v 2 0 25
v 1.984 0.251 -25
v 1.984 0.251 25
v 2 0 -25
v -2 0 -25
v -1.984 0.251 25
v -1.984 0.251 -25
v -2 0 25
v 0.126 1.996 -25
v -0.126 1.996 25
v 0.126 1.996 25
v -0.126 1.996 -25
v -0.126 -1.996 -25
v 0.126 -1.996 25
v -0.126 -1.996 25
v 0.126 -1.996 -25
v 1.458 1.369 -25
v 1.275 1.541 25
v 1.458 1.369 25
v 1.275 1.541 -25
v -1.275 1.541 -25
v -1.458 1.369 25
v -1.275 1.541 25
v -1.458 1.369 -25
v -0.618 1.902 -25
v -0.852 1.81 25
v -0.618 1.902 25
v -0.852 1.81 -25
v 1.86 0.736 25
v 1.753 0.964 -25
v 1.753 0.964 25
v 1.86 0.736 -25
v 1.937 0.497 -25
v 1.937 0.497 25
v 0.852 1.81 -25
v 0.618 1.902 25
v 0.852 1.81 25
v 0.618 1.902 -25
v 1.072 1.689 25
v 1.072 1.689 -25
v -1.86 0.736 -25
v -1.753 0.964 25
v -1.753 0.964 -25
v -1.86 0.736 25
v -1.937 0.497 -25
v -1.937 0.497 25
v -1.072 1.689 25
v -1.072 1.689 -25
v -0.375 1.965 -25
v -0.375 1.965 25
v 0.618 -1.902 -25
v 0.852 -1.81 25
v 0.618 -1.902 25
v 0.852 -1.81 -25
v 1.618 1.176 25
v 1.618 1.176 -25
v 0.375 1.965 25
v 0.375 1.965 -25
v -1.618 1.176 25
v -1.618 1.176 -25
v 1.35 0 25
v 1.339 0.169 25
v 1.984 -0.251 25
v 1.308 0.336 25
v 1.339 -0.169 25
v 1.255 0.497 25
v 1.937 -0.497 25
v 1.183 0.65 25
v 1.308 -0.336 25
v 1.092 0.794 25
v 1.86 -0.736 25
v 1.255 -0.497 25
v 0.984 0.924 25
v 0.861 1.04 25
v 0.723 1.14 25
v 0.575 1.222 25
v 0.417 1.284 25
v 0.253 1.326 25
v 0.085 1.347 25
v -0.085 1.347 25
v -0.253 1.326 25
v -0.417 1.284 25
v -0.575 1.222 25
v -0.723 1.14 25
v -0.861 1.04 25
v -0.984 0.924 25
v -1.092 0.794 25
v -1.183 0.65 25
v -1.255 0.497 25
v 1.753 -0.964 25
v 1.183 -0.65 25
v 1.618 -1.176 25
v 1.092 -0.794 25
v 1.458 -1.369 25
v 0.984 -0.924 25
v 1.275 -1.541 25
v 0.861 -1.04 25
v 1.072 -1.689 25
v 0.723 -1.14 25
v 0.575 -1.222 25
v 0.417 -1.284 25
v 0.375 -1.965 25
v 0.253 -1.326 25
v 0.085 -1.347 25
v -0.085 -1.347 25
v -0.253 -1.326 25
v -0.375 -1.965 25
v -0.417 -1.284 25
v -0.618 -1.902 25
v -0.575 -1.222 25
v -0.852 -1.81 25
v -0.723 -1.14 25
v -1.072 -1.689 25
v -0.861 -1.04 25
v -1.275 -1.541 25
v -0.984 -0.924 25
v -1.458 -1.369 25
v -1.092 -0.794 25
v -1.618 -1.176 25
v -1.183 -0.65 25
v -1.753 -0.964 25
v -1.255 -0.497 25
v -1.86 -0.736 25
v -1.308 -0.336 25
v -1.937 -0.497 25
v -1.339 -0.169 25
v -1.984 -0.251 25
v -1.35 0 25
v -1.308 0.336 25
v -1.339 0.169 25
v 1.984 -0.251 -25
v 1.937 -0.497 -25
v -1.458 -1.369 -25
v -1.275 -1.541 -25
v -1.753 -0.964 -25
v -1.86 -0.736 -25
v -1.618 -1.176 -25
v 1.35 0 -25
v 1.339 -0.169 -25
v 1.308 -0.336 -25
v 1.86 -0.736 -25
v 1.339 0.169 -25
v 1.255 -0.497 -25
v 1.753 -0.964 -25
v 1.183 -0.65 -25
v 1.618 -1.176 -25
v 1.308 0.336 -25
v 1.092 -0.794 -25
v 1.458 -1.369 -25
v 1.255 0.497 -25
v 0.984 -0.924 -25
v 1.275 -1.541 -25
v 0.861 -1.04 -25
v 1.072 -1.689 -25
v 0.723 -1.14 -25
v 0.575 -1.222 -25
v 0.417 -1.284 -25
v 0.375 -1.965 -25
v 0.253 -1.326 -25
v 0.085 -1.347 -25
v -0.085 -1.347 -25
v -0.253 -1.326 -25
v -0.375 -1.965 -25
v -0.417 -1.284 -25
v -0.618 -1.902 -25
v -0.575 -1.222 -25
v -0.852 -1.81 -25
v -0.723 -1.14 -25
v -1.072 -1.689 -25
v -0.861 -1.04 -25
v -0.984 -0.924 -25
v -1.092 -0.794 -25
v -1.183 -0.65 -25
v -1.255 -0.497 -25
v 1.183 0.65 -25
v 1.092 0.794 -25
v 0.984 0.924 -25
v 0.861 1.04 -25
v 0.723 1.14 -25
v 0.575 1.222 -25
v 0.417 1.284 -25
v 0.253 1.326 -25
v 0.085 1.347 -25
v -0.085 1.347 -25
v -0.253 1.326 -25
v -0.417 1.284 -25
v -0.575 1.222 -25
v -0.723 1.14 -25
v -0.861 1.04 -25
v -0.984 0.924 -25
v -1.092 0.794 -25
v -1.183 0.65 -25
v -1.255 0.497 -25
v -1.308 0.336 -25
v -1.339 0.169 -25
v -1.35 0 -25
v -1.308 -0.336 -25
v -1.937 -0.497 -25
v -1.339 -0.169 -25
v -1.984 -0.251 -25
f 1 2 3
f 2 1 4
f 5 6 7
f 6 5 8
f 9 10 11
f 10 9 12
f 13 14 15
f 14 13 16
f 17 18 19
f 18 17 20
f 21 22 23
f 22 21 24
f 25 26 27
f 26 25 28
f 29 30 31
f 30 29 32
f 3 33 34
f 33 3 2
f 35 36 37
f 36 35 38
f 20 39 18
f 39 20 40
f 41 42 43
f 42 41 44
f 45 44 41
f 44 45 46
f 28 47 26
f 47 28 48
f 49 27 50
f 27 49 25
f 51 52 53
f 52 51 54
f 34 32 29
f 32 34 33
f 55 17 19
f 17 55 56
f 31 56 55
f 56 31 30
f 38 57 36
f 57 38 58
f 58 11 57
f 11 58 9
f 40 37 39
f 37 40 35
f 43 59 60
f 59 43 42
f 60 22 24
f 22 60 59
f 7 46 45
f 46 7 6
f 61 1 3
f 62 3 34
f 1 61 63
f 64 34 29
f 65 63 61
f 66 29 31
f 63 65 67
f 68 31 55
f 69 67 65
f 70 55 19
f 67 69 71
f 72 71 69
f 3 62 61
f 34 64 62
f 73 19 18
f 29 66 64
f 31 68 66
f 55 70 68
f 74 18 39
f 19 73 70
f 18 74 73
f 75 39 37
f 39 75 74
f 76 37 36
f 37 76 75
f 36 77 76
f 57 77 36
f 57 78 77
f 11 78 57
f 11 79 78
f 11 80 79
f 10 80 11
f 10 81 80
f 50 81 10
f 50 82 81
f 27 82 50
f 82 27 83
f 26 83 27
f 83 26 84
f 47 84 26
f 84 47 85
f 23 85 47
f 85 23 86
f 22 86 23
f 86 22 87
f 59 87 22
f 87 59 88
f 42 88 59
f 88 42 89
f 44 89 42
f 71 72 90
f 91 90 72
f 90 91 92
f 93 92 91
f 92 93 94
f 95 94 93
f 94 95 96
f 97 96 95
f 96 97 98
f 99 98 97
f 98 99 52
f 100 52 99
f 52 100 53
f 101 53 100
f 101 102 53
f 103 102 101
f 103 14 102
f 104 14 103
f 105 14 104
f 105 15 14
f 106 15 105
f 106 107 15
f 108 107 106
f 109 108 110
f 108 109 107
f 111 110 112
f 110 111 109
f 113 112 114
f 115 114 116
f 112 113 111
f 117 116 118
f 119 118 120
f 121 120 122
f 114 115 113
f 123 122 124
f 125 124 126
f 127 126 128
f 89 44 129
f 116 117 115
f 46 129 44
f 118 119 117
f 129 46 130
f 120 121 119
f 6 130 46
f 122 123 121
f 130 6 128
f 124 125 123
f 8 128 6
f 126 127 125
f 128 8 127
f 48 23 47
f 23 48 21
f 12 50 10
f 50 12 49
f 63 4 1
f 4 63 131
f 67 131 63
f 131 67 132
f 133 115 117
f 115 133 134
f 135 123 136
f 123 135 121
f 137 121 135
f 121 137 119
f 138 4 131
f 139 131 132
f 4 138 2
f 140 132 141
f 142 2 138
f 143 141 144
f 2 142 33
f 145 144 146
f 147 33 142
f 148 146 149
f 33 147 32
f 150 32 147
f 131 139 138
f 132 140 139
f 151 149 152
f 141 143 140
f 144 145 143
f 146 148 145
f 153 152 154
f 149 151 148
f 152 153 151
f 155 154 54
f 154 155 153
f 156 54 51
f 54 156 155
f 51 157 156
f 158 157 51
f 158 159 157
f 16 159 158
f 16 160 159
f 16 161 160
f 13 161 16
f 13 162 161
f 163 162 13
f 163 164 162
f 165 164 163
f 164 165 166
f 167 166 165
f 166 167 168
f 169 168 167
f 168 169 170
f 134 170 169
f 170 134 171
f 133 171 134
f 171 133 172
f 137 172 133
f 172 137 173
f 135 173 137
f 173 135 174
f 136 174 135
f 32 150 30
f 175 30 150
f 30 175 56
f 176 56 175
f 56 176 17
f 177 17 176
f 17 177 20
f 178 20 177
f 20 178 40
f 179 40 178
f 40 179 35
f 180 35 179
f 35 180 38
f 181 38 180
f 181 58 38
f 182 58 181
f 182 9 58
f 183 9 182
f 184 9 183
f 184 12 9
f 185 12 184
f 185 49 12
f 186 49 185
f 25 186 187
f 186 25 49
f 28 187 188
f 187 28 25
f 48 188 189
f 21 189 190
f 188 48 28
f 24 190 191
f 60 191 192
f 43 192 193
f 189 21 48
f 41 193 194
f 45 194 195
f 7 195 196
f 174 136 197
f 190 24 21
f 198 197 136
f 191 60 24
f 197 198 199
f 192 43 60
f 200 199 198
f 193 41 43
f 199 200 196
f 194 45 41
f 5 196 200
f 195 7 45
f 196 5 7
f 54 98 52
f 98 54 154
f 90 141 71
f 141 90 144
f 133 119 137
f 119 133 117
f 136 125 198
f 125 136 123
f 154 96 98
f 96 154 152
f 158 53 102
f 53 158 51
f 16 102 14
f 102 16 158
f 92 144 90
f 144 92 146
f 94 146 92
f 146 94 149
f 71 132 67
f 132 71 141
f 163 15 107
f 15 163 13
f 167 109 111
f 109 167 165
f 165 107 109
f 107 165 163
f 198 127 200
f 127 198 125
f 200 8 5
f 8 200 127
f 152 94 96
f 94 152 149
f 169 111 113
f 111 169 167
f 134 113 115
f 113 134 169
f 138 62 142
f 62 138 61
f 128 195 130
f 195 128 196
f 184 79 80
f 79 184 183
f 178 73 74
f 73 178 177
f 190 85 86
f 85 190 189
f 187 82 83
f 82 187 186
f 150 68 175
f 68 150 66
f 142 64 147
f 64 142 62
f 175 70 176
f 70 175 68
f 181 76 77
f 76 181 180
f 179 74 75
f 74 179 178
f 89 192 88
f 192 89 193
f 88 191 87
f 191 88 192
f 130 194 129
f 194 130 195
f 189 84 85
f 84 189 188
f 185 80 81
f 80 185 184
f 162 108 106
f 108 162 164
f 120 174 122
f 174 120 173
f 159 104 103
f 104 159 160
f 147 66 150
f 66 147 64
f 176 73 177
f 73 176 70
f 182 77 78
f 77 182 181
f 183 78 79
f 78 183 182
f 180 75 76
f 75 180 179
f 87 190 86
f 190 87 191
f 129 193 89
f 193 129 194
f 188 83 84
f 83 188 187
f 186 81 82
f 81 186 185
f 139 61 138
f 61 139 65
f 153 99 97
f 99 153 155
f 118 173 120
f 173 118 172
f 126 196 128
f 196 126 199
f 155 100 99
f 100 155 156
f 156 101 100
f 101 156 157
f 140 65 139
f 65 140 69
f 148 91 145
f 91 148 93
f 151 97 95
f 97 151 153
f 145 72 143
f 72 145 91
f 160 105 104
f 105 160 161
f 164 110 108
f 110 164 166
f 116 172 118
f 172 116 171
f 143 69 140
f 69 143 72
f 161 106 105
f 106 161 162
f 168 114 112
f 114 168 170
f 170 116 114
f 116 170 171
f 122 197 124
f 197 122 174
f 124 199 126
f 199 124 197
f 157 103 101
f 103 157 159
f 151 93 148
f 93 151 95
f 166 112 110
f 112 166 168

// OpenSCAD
$fn = 50;


difference() {
	union() {
		translate(v = [0, 0, -25.0000000000]) {
			cylinder(h = 50, r = 2.0000000000);
		}
	}
	union() {
		translate(v = [0, 0, -100.0000000000]) {
			cylinder(h = 200, r = 1.3500000000);
		}
	}
}
